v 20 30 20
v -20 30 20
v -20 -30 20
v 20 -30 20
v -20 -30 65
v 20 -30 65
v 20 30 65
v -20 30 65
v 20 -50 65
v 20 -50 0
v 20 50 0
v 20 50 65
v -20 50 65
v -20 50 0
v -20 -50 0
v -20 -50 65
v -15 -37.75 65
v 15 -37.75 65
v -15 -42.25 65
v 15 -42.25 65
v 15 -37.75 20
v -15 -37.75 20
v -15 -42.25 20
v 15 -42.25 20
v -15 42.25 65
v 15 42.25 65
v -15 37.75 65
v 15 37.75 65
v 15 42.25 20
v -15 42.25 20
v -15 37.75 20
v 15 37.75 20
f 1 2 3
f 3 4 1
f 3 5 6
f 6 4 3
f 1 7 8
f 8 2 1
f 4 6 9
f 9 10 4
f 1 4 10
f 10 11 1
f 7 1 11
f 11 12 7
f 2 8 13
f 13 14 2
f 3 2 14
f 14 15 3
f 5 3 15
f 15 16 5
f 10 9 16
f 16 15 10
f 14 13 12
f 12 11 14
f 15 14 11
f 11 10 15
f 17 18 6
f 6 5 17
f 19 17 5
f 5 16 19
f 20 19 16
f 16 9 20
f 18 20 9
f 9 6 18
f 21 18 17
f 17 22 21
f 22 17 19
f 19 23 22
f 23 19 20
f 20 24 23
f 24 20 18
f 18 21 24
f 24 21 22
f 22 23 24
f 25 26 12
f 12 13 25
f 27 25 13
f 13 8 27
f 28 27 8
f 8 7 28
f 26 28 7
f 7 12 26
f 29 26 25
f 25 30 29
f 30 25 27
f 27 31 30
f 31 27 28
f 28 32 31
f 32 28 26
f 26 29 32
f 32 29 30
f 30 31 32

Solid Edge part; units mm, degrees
sketch "Sketch1" plane through (0, 0, 0) normal (0, 0, 1) x (1, 0, 0)
  line L0 (20, -50) -> (20, 50)
  line L1 (20, 50) -> (-20, 50)
  line L2 (-20, 50) -> (-20, -50)
  line L3 (-20, -50) -> (20, -50)
extrude "Protrusion1" add sketch "Sketch1" along normal blind 20
sketch "Sketch2" plane through (0, 0, 20) normal (0, 0, 1) x (1, 0, 0)
  line L0 (-15, 42.25) -> (-15, 37.75)
  line L1 (-15, 37.75) -> (15, 37.75)
  line L2 (15, 37.75) -> (15, 42.25)
  line L3 (15, 42.25) -> (-15, 42.25)
  line L4 (20, 30) -> (-20, 30)
  line L5 (-20, 30) -> (-20, 50)
  line L6 (-20, 50) -> (20, 50)
  line L7 (20, 50) -> (20, 30)
  line L8 (15, -37.75) -> (-15, -37.75)
  line L9 (-15, -37.75) -> (-15, -42.25)
  line L10 (-15, -42.25) -> (15, -42.25)
  line L11 (15, -42.25) -> (15, -37.75)
  line L12 (20, -50) -> (20, -30)
  line L13 (20, -30) -> (-20, -30)
  line L14 (-20, -30) -> (-20, -50)
  line L15 (-20, -50) -> (20, -50)
extrude "Protrusion2" add sketch "Sketch2" along normal blind 45
